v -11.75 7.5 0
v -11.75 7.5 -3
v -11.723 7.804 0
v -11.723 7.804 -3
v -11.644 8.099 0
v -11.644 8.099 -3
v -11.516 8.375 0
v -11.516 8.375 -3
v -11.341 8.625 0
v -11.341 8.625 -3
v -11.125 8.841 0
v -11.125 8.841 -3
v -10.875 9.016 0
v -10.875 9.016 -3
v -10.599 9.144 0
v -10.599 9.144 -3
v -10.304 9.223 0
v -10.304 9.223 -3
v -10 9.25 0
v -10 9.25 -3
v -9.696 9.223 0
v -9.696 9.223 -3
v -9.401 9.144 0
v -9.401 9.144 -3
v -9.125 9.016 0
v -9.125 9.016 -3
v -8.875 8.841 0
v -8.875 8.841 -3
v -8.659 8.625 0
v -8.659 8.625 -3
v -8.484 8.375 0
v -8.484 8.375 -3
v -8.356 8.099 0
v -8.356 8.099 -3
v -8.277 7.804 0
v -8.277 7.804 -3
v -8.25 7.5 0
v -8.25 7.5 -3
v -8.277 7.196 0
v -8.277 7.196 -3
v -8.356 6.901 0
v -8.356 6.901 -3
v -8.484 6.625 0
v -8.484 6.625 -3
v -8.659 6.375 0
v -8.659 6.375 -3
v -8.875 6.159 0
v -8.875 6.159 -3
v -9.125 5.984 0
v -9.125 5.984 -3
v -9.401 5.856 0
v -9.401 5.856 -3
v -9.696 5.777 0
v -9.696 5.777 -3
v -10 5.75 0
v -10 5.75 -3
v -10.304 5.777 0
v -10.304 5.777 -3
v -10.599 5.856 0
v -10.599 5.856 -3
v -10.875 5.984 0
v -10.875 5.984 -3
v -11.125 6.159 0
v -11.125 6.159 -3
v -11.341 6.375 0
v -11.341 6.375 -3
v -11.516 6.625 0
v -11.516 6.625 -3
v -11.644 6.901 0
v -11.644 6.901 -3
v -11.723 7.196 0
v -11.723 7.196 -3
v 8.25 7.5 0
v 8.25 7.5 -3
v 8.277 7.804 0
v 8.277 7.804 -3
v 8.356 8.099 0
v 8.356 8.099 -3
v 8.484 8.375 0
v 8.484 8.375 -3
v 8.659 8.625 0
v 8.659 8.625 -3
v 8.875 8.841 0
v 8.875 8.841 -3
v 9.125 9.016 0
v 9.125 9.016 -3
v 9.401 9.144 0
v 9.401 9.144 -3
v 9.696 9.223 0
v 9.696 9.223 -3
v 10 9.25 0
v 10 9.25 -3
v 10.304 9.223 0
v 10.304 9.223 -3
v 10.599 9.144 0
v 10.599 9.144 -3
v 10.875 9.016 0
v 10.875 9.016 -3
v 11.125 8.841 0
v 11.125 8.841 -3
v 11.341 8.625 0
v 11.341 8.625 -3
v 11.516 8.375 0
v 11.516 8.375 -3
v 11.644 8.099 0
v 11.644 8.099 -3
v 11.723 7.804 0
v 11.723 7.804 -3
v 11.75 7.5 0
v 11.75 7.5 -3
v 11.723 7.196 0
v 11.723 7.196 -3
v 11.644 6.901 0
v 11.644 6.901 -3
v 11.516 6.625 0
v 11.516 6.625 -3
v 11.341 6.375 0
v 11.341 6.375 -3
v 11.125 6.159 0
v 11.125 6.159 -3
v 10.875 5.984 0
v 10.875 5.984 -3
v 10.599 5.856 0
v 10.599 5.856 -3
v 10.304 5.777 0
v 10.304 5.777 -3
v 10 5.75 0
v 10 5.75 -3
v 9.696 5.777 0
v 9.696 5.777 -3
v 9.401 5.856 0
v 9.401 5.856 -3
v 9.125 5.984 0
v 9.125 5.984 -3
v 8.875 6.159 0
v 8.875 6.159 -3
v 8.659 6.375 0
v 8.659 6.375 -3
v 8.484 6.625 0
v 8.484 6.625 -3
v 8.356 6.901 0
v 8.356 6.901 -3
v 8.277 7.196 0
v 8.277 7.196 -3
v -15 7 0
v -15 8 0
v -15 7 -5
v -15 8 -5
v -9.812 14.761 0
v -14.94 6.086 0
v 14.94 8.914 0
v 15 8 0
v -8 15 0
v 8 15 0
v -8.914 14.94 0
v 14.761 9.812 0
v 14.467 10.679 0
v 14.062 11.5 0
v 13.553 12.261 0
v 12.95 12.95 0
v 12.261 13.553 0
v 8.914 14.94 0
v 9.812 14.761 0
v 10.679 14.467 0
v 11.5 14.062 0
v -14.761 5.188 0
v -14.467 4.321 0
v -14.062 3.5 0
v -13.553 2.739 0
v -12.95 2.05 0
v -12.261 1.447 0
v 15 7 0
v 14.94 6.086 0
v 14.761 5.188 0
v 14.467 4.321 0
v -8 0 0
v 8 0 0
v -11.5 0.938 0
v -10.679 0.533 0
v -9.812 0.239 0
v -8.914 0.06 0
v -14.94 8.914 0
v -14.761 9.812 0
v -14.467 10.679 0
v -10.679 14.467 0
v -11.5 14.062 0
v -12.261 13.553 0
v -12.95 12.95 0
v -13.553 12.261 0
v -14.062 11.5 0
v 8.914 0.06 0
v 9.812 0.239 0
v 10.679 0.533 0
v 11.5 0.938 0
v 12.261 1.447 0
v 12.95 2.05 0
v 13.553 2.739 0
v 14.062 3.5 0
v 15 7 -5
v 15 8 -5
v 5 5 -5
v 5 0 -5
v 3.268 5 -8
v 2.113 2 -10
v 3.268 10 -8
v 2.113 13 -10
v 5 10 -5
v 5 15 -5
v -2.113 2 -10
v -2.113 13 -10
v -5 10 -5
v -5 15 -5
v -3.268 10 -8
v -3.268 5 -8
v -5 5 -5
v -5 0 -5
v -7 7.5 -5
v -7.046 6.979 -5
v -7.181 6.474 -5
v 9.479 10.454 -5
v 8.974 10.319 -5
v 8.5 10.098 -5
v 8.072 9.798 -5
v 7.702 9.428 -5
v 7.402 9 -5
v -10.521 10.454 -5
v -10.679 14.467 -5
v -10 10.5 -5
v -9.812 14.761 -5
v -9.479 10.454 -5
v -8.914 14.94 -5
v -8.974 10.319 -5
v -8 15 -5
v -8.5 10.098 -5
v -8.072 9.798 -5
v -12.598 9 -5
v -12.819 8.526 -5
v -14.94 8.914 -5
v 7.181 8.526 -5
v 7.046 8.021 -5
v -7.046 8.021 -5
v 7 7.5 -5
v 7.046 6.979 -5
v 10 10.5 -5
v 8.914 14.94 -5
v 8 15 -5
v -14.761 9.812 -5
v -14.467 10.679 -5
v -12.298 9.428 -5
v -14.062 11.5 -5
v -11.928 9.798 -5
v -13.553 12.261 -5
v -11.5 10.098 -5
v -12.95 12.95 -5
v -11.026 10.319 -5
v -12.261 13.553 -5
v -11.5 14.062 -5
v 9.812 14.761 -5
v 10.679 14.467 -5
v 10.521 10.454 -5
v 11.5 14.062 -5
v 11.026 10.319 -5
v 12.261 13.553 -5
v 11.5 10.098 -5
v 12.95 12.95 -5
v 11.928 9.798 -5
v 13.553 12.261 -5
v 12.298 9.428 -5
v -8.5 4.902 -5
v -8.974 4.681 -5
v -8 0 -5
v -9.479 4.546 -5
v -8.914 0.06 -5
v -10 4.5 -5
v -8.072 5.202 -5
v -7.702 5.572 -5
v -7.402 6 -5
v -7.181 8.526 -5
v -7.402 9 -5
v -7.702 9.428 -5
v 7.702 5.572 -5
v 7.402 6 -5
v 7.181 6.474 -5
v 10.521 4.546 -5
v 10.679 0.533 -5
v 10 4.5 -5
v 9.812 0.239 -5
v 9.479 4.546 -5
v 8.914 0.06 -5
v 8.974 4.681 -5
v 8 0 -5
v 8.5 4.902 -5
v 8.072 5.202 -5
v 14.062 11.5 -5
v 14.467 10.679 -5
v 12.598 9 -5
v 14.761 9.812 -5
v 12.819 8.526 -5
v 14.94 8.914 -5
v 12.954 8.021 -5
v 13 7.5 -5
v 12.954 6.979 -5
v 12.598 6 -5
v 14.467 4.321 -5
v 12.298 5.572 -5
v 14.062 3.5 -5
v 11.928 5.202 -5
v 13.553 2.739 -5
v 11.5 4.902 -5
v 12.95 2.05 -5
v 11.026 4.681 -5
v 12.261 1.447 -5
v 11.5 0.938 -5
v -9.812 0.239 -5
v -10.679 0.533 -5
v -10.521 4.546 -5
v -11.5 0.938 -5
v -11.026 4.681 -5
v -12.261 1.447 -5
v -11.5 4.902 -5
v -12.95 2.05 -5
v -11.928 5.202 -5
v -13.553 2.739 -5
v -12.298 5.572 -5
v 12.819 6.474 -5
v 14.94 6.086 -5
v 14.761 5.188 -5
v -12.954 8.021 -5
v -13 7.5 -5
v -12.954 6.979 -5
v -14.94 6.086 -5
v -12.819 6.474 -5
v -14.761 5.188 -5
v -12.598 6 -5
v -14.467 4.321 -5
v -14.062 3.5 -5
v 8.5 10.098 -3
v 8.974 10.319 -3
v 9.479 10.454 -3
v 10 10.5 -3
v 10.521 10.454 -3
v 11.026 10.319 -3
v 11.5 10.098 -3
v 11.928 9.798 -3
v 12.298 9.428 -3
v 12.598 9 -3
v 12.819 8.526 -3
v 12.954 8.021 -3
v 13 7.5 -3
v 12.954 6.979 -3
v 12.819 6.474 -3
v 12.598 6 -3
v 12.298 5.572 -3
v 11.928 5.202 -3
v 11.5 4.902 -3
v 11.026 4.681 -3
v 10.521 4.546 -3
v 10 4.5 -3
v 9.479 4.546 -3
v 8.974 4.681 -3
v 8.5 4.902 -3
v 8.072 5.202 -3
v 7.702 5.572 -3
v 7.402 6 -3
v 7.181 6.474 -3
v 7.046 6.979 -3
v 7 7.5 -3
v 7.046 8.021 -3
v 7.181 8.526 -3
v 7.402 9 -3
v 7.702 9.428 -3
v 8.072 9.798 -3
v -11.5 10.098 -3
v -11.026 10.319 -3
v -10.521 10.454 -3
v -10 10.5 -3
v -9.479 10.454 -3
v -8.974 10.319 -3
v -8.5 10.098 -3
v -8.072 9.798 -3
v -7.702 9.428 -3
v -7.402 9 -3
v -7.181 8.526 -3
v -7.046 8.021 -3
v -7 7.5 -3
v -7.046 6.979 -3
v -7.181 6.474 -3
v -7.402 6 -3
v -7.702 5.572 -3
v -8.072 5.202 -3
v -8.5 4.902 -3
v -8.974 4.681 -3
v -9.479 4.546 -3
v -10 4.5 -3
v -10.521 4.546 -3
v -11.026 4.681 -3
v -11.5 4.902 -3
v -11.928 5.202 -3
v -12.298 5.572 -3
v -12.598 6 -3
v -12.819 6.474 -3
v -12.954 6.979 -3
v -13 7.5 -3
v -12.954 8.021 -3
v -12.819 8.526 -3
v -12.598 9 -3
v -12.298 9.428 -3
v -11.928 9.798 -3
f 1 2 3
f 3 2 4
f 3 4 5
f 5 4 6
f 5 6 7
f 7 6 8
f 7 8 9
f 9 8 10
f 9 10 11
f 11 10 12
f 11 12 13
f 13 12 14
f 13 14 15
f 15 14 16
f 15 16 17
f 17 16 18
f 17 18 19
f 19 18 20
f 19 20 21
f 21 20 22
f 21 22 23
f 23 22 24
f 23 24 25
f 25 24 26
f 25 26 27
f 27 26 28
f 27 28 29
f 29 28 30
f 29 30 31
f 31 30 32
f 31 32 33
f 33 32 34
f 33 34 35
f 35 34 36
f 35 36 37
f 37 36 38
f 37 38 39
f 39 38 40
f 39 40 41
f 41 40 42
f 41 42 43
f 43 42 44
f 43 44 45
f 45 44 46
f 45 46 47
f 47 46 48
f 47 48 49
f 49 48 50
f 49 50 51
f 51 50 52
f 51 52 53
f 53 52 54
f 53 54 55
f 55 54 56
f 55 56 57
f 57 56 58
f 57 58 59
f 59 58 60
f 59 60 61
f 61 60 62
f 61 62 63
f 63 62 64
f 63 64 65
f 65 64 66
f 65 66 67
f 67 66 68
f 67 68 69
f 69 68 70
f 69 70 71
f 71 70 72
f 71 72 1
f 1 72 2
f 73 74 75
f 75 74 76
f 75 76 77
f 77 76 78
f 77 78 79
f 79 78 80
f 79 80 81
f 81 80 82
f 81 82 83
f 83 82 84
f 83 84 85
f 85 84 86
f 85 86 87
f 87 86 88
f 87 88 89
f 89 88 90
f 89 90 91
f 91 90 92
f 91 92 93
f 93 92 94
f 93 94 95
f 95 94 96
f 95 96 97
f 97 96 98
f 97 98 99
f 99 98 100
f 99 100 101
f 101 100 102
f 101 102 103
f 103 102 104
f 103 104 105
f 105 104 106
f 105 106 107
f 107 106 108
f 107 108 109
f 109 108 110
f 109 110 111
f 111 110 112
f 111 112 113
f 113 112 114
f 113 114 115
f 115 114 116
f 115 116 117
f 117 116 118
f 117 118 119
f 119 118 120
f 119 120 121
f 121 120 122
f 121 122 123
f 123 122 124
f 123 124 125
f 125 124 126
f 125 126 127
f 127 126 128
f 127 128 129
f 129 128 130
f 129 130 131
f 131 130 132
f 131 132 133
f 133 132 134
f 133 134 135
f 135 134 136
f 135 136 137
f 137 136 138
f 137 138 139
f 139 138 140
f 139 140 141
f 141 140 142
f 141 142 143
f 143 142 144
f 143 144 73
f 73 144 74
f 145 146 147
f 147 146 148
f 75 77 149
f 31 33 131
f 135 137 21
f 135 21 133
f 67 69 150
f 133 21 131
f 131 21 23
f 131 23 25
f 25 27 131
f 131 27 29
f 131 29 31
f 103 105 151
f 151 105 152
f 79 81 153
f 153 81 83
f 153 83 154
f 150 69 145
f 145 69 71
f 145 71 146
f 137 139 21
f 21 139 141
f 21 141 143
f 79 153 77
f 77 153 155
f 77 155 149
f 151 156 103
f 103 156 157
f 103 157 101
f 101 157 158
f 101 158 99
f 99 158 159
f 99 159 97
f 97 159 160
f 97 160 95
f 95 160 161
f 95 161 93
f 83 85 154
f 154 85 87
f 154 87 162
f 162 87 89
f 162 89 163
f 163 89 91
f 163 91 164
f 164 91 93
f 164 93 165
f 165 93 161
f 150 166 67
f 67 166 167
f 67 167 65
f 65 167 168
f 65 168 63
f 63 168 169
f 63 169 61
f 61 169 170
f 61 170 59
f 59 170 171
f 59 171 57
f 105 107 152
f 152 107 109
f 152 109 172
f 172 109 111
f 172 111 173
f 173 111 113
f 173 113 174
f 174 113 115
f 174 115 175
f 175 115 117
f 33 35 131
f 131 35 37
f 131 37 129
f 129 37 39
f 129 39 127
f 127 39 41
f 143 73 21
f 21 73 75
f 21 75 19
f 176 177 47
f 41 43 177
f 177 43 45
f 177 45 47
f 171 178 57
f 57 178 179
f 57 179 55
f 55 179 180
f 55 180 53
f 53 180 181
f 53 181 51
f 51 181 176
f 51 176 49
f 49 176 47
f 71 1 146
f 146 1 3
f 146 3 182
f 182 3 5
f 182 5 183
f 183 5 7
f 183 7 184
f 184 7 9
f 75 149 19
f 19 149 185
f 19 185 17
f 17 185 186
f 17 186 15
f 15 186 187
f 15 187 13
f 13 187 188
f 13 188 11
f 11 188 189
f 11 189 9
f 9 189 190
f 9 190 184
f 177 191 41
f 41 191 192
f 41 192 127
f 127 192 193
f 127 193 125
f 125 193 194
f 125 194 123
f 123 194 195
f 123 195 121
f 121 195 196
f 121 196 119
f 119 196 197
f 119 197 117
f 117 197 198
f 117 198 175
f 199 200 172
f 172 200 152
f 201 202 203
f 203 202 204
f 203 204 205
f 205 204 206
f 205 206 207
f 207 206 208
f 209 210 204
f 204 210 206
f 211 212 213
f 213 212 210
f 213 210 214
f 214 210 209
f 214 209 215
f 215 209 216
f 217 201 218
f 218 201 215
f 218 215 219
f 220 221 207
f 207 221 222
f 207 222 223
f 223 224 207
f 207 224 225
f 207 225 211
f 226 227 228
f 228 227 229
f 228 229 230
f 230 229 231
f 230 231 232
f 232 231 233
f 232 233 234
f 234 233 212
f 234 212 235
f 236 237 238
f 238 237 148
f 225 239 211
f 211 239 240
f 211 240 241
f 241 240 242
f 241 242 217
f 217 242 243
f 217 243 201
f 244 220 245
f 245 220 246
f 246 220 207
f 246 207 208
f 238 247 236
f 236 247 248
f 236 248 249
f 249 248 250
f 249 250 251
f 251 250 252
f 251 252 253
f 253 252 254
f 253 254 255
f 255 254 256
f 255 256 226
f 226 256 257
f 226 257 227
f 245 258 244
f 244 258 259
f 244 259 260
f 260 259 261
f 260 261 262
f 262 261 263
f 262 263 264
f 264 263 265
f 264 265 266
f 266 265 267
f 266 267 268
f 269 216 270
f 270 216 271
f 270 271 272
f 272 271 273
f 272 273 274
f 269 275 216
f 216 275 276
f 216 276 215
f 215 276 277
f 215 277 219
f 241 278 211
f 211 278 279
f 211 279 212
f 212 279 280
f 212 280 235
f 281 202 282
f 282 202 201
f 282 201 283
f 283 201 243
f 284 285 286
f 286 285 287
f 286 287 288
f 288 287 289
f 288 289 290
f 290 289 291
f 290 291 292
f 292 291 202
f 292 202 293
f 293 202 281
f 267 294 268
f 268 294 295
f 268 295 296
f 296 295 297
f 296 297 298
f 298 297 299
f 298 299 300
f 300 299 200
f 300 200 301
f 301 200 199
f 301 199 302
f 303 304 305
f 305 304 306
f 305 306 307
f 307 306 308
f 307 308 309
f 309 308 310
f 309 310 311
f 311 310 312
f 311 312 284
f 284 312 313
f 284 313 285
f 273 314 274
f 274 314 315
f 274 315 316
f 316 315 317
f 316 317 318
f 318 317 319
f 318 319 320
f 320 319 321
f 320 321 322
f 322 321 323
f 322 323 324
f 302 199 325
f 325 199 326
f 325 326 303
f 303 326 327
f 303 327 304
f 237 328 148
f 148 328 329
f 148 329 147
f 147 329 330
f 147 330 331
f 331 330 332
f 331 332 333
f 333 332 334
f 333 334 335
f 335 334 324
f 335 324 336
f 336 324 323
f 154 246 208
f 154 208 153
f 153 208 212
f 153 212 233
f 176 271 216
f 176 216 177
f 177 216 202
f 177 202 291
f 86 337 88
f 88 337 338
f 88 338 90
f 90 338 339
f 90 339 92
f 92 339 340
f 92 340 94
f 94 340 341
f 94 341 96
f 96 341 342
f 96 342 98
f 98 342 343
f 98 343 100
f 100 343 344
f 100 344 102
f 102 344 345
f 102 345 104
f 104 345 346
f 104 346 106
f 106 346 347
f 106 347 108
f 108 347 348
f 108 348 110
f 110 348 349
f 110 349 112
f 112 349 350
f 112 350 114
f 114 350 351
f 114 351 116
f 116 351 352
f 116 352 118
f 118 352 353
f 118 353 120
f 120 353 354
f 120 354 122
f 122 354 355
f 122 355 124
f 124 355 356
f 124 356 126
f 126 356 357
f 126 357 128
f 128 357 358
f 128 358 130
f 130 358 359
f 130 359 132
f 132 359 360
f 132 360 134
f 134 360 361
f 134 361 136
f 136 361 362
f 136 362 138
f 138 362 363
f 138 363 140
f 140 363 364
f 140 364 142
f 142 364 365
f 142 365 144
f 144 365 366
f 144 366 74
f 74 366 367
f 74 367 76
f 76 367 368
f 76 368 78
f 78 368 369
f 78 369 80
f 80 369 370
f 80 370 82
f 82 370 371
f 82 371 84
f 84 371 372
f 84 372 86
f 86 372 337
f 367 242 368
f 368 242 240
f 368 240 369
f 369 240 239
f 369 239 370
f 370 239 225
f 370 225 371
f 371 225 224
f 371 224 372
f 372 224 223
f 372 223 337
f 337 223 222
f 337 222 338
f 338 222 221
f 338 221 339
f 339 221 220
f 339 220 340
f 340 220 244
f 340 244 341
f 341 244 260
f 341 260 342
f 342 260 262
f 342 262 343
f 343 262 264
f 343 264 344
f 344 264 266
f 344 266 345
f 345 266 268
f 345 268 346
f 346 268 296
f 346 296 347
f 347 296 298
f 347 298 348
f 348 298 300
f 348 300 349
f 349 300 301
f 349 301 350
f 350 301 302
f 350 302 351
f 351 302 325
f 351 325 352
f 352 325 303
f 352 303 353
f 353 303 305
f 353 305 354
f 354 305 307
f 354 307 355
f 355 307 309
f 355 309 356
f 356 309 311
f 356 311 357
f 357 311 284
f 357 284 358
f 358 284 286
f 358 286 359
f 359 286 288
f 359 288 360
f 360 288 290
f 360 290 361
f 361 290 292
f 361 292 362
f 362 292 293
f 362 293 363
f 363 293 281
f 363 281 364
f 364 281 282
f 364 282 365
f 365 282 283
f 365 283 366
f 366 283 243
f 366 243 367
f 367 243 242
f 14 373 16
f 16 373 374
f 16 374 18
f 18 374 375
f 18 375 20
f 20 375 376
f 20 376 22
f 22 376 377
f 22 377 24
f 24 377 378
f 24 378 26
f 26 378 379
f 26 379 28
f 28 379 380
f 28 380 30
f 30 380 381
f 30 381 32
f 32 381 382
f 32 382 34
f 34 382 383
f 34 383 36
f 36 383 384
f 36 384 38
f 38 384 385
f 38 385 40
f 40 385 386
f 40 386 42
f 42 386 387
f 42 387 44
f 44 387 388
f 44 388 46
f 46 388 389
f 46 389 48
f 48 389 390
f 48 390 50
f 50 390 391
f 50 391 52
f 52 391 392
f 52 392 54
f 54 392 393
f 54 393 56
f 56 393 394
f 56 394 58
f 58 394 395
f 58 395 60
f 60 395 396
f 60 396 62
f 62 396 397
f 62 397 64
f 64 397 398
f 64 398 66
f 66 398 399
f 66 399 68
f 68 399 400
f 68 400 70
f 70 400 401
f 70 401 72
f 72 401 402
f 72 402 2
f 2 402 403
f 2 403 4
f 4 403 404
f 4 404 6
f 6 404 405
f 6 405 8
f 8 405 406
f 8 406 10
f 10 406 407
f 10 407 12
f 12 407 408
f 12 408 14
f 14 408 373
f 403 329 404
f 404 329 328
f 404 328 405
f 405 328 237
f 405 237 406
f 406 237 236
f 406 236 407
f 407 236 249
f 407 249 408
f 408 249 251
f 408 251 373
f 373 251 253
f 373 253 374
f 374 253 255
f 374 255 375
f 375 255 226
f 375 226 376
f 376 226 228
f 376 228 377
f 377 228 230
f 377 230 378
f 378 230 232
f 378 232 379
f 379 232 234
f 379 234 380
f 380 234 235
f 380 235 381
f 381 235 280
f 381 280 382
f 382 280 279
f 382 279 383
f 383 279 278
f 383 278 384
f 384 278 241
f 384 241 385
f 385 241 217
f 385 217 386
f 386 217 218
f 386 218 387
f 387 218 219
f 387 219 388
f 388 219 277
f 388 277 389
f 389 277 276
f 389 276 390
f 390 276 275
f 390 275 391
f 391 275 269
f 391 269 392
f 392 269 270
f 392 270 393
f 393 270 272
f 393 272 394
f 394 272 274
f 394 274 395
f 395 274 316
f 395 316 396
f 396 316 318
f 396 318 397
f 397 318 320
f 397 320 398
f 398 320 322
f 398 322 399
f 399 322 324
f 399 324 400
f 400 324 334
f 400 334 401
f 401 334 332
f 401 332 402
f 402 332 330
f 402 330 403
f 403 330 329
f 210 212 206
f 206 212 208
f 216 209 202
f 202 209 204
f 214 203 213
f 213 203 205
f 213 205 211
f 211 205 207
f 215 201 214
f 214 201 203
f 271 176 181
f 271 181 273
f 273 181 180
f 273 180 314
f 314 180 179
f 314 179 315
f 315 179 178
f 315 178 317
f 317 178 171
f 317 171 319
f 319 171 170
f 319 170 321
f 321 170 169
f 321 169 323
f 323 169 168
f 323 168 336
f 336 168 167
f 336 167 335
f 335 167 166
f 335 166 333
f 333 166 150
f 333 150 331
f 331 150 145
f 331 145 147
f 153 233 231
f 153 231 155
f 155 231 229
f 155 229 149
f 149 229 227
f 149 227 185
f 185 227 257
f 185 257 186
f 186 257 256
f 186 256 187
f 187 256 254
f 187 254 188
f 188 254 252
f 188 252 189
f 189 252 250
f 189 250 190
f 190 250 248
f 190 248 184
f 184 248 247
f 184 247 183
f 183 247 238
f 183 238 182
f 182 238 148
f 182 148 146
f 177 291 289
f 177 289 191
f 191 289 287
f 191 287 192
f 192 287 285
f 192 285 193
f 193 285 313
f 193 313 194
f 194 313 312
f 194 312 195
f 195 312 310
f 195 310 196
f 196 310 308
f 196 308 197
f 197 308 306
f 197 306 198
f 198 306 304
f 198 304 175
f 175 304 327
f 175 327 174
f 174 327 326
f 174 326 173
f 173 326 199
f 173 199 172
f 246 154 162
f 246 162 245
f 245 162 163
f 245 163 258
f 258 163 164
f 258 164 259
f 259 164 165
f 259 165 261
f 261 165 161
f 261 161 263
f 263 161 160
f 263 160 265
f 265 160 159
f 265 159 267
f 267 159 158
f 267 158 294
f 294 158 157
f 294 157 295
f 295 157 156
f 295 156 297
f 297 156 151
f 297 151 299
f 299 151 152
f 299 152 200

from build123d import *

# Parameters (mm, degrees)
BOSS_EXTRUDE1_DEPTH = 15
SKETCH11_R          = 1.75
CUT_EXTRUDE1_DEPTH  = 15
SKETCH12_R          = 3
CUT_EXTRUDE2_DEPTH  = 2
CHAMFER1_SIZE       = 2
CHAMFER1_SIZE2      = 5
CHAMFER2_SIZE       = 5
CHAMFER2_SIZE2      = 2
SKETCH13_W          = 3
SKETCH13_H          = 5
CUT_EXTRUDE3_DEPTH  = 36
FILLET1_R           = 7


with BuildPart() as part:
    # Sketch1 → Boss-Extrude1 (new body)
    with BuildSketch(Plane(origin=(0, 0, 0), x_dir=(1, 0, 0), z_dir=(0, 1, 0))):
        Polygon((-15, 0), (15, 0), (15, 5), (5, 5), (2.113248654, 10), (-2.113248654, 10), (-5, 5), (-15, 5), align=None)
    extrude(amount=BOSS_EXTRUDE1_DEPTH)

    # Sketch11 → Cut-Extrude1 (cut)
    with BuildSketch(Plane(origin=(0, 0, -5), x_dir=(-1, 0, 0), z_dir=(0, 0, -1))):
        with Locations((-10, 7.5)):
            Circle(SKETCH11_R)
        with Locations((10, 7.5)):
            Circle(SKETCH11_R)
    extrude(amount=-CUT_EXTRUDE1_DEPTH, mode=Mode.SUBTRACT)

    # Sketch12 → Cut-Extrude2 (cut)
    with BuildSketch(Plane(origin=(0, 0, -5), x_dir=(-1, 0, 0), z_dir=(0, 0, -1))):
        with Locations((-10, 7.5)):
            Circle(SKETCH12_R)
        with Locations((10, 7.5)):
            Circle(SKETCH12_R)
    extrude(amount=-CUT_EXTRUDE2_DEPTH, mode=Mode.SUBTRACT)

    # Chamfer1
    chamfer1_edges = [part.edges().sort_by_distance(p)[0] for p in [
        (0, 15, -10),
    ]]
    chamfer1_side = [part.faces().sort_by_distance(p)[0] for p in [
        (0, 7.5, -10),
    ]]
    chamfer(chamfer1_edges, length=CHAMFER1_SIZE, length2=CHAMFER1_SIZE2, reference=chamfer1_side[0])

    # Chamfer2
    chamfer2_edges = [part.edges().sort_by_distance(p)[0] for p in [
        (0, 0, -10),
    ]]
    chamfer2_side = [part.faces().sort_by_distance(p)[0] for p in [
        (0, 0, -3.3934981),
    ]]
    chamfer(chamfer2_edges, length=CHAMFER2_SIZE, length2=CHAMFER2_SIZE2, reference=chamfer2_side[0])

    # Sketch13 → Cut-Extrude3 (cut, through all)
    with BuildSketch(Plane(origin=(15, 0, 0), x_dir=(0, 0, -1), z_dir=(1, 0, 0))):
        with Locations((6.5, 7.5)):
            Rectangle(SKETCH13_W, SKETCH13_H)
    extrude(amount=-CUT_EXTRUDE3_DEPTH, mode=Mode.SUBTRACT)

    # Fillet1
    fillet1_edges = [part.edges().sort_by_distance(p)[0] for p in [
        (15, 15, -2.5),
        (-15, 0, -2.5),
        (-15, 15, -2.5),
        (15, 0, -2.5),
    ]]
    fillet(fillet1_edges, radius=FILLET1_R)


solid = part.part
